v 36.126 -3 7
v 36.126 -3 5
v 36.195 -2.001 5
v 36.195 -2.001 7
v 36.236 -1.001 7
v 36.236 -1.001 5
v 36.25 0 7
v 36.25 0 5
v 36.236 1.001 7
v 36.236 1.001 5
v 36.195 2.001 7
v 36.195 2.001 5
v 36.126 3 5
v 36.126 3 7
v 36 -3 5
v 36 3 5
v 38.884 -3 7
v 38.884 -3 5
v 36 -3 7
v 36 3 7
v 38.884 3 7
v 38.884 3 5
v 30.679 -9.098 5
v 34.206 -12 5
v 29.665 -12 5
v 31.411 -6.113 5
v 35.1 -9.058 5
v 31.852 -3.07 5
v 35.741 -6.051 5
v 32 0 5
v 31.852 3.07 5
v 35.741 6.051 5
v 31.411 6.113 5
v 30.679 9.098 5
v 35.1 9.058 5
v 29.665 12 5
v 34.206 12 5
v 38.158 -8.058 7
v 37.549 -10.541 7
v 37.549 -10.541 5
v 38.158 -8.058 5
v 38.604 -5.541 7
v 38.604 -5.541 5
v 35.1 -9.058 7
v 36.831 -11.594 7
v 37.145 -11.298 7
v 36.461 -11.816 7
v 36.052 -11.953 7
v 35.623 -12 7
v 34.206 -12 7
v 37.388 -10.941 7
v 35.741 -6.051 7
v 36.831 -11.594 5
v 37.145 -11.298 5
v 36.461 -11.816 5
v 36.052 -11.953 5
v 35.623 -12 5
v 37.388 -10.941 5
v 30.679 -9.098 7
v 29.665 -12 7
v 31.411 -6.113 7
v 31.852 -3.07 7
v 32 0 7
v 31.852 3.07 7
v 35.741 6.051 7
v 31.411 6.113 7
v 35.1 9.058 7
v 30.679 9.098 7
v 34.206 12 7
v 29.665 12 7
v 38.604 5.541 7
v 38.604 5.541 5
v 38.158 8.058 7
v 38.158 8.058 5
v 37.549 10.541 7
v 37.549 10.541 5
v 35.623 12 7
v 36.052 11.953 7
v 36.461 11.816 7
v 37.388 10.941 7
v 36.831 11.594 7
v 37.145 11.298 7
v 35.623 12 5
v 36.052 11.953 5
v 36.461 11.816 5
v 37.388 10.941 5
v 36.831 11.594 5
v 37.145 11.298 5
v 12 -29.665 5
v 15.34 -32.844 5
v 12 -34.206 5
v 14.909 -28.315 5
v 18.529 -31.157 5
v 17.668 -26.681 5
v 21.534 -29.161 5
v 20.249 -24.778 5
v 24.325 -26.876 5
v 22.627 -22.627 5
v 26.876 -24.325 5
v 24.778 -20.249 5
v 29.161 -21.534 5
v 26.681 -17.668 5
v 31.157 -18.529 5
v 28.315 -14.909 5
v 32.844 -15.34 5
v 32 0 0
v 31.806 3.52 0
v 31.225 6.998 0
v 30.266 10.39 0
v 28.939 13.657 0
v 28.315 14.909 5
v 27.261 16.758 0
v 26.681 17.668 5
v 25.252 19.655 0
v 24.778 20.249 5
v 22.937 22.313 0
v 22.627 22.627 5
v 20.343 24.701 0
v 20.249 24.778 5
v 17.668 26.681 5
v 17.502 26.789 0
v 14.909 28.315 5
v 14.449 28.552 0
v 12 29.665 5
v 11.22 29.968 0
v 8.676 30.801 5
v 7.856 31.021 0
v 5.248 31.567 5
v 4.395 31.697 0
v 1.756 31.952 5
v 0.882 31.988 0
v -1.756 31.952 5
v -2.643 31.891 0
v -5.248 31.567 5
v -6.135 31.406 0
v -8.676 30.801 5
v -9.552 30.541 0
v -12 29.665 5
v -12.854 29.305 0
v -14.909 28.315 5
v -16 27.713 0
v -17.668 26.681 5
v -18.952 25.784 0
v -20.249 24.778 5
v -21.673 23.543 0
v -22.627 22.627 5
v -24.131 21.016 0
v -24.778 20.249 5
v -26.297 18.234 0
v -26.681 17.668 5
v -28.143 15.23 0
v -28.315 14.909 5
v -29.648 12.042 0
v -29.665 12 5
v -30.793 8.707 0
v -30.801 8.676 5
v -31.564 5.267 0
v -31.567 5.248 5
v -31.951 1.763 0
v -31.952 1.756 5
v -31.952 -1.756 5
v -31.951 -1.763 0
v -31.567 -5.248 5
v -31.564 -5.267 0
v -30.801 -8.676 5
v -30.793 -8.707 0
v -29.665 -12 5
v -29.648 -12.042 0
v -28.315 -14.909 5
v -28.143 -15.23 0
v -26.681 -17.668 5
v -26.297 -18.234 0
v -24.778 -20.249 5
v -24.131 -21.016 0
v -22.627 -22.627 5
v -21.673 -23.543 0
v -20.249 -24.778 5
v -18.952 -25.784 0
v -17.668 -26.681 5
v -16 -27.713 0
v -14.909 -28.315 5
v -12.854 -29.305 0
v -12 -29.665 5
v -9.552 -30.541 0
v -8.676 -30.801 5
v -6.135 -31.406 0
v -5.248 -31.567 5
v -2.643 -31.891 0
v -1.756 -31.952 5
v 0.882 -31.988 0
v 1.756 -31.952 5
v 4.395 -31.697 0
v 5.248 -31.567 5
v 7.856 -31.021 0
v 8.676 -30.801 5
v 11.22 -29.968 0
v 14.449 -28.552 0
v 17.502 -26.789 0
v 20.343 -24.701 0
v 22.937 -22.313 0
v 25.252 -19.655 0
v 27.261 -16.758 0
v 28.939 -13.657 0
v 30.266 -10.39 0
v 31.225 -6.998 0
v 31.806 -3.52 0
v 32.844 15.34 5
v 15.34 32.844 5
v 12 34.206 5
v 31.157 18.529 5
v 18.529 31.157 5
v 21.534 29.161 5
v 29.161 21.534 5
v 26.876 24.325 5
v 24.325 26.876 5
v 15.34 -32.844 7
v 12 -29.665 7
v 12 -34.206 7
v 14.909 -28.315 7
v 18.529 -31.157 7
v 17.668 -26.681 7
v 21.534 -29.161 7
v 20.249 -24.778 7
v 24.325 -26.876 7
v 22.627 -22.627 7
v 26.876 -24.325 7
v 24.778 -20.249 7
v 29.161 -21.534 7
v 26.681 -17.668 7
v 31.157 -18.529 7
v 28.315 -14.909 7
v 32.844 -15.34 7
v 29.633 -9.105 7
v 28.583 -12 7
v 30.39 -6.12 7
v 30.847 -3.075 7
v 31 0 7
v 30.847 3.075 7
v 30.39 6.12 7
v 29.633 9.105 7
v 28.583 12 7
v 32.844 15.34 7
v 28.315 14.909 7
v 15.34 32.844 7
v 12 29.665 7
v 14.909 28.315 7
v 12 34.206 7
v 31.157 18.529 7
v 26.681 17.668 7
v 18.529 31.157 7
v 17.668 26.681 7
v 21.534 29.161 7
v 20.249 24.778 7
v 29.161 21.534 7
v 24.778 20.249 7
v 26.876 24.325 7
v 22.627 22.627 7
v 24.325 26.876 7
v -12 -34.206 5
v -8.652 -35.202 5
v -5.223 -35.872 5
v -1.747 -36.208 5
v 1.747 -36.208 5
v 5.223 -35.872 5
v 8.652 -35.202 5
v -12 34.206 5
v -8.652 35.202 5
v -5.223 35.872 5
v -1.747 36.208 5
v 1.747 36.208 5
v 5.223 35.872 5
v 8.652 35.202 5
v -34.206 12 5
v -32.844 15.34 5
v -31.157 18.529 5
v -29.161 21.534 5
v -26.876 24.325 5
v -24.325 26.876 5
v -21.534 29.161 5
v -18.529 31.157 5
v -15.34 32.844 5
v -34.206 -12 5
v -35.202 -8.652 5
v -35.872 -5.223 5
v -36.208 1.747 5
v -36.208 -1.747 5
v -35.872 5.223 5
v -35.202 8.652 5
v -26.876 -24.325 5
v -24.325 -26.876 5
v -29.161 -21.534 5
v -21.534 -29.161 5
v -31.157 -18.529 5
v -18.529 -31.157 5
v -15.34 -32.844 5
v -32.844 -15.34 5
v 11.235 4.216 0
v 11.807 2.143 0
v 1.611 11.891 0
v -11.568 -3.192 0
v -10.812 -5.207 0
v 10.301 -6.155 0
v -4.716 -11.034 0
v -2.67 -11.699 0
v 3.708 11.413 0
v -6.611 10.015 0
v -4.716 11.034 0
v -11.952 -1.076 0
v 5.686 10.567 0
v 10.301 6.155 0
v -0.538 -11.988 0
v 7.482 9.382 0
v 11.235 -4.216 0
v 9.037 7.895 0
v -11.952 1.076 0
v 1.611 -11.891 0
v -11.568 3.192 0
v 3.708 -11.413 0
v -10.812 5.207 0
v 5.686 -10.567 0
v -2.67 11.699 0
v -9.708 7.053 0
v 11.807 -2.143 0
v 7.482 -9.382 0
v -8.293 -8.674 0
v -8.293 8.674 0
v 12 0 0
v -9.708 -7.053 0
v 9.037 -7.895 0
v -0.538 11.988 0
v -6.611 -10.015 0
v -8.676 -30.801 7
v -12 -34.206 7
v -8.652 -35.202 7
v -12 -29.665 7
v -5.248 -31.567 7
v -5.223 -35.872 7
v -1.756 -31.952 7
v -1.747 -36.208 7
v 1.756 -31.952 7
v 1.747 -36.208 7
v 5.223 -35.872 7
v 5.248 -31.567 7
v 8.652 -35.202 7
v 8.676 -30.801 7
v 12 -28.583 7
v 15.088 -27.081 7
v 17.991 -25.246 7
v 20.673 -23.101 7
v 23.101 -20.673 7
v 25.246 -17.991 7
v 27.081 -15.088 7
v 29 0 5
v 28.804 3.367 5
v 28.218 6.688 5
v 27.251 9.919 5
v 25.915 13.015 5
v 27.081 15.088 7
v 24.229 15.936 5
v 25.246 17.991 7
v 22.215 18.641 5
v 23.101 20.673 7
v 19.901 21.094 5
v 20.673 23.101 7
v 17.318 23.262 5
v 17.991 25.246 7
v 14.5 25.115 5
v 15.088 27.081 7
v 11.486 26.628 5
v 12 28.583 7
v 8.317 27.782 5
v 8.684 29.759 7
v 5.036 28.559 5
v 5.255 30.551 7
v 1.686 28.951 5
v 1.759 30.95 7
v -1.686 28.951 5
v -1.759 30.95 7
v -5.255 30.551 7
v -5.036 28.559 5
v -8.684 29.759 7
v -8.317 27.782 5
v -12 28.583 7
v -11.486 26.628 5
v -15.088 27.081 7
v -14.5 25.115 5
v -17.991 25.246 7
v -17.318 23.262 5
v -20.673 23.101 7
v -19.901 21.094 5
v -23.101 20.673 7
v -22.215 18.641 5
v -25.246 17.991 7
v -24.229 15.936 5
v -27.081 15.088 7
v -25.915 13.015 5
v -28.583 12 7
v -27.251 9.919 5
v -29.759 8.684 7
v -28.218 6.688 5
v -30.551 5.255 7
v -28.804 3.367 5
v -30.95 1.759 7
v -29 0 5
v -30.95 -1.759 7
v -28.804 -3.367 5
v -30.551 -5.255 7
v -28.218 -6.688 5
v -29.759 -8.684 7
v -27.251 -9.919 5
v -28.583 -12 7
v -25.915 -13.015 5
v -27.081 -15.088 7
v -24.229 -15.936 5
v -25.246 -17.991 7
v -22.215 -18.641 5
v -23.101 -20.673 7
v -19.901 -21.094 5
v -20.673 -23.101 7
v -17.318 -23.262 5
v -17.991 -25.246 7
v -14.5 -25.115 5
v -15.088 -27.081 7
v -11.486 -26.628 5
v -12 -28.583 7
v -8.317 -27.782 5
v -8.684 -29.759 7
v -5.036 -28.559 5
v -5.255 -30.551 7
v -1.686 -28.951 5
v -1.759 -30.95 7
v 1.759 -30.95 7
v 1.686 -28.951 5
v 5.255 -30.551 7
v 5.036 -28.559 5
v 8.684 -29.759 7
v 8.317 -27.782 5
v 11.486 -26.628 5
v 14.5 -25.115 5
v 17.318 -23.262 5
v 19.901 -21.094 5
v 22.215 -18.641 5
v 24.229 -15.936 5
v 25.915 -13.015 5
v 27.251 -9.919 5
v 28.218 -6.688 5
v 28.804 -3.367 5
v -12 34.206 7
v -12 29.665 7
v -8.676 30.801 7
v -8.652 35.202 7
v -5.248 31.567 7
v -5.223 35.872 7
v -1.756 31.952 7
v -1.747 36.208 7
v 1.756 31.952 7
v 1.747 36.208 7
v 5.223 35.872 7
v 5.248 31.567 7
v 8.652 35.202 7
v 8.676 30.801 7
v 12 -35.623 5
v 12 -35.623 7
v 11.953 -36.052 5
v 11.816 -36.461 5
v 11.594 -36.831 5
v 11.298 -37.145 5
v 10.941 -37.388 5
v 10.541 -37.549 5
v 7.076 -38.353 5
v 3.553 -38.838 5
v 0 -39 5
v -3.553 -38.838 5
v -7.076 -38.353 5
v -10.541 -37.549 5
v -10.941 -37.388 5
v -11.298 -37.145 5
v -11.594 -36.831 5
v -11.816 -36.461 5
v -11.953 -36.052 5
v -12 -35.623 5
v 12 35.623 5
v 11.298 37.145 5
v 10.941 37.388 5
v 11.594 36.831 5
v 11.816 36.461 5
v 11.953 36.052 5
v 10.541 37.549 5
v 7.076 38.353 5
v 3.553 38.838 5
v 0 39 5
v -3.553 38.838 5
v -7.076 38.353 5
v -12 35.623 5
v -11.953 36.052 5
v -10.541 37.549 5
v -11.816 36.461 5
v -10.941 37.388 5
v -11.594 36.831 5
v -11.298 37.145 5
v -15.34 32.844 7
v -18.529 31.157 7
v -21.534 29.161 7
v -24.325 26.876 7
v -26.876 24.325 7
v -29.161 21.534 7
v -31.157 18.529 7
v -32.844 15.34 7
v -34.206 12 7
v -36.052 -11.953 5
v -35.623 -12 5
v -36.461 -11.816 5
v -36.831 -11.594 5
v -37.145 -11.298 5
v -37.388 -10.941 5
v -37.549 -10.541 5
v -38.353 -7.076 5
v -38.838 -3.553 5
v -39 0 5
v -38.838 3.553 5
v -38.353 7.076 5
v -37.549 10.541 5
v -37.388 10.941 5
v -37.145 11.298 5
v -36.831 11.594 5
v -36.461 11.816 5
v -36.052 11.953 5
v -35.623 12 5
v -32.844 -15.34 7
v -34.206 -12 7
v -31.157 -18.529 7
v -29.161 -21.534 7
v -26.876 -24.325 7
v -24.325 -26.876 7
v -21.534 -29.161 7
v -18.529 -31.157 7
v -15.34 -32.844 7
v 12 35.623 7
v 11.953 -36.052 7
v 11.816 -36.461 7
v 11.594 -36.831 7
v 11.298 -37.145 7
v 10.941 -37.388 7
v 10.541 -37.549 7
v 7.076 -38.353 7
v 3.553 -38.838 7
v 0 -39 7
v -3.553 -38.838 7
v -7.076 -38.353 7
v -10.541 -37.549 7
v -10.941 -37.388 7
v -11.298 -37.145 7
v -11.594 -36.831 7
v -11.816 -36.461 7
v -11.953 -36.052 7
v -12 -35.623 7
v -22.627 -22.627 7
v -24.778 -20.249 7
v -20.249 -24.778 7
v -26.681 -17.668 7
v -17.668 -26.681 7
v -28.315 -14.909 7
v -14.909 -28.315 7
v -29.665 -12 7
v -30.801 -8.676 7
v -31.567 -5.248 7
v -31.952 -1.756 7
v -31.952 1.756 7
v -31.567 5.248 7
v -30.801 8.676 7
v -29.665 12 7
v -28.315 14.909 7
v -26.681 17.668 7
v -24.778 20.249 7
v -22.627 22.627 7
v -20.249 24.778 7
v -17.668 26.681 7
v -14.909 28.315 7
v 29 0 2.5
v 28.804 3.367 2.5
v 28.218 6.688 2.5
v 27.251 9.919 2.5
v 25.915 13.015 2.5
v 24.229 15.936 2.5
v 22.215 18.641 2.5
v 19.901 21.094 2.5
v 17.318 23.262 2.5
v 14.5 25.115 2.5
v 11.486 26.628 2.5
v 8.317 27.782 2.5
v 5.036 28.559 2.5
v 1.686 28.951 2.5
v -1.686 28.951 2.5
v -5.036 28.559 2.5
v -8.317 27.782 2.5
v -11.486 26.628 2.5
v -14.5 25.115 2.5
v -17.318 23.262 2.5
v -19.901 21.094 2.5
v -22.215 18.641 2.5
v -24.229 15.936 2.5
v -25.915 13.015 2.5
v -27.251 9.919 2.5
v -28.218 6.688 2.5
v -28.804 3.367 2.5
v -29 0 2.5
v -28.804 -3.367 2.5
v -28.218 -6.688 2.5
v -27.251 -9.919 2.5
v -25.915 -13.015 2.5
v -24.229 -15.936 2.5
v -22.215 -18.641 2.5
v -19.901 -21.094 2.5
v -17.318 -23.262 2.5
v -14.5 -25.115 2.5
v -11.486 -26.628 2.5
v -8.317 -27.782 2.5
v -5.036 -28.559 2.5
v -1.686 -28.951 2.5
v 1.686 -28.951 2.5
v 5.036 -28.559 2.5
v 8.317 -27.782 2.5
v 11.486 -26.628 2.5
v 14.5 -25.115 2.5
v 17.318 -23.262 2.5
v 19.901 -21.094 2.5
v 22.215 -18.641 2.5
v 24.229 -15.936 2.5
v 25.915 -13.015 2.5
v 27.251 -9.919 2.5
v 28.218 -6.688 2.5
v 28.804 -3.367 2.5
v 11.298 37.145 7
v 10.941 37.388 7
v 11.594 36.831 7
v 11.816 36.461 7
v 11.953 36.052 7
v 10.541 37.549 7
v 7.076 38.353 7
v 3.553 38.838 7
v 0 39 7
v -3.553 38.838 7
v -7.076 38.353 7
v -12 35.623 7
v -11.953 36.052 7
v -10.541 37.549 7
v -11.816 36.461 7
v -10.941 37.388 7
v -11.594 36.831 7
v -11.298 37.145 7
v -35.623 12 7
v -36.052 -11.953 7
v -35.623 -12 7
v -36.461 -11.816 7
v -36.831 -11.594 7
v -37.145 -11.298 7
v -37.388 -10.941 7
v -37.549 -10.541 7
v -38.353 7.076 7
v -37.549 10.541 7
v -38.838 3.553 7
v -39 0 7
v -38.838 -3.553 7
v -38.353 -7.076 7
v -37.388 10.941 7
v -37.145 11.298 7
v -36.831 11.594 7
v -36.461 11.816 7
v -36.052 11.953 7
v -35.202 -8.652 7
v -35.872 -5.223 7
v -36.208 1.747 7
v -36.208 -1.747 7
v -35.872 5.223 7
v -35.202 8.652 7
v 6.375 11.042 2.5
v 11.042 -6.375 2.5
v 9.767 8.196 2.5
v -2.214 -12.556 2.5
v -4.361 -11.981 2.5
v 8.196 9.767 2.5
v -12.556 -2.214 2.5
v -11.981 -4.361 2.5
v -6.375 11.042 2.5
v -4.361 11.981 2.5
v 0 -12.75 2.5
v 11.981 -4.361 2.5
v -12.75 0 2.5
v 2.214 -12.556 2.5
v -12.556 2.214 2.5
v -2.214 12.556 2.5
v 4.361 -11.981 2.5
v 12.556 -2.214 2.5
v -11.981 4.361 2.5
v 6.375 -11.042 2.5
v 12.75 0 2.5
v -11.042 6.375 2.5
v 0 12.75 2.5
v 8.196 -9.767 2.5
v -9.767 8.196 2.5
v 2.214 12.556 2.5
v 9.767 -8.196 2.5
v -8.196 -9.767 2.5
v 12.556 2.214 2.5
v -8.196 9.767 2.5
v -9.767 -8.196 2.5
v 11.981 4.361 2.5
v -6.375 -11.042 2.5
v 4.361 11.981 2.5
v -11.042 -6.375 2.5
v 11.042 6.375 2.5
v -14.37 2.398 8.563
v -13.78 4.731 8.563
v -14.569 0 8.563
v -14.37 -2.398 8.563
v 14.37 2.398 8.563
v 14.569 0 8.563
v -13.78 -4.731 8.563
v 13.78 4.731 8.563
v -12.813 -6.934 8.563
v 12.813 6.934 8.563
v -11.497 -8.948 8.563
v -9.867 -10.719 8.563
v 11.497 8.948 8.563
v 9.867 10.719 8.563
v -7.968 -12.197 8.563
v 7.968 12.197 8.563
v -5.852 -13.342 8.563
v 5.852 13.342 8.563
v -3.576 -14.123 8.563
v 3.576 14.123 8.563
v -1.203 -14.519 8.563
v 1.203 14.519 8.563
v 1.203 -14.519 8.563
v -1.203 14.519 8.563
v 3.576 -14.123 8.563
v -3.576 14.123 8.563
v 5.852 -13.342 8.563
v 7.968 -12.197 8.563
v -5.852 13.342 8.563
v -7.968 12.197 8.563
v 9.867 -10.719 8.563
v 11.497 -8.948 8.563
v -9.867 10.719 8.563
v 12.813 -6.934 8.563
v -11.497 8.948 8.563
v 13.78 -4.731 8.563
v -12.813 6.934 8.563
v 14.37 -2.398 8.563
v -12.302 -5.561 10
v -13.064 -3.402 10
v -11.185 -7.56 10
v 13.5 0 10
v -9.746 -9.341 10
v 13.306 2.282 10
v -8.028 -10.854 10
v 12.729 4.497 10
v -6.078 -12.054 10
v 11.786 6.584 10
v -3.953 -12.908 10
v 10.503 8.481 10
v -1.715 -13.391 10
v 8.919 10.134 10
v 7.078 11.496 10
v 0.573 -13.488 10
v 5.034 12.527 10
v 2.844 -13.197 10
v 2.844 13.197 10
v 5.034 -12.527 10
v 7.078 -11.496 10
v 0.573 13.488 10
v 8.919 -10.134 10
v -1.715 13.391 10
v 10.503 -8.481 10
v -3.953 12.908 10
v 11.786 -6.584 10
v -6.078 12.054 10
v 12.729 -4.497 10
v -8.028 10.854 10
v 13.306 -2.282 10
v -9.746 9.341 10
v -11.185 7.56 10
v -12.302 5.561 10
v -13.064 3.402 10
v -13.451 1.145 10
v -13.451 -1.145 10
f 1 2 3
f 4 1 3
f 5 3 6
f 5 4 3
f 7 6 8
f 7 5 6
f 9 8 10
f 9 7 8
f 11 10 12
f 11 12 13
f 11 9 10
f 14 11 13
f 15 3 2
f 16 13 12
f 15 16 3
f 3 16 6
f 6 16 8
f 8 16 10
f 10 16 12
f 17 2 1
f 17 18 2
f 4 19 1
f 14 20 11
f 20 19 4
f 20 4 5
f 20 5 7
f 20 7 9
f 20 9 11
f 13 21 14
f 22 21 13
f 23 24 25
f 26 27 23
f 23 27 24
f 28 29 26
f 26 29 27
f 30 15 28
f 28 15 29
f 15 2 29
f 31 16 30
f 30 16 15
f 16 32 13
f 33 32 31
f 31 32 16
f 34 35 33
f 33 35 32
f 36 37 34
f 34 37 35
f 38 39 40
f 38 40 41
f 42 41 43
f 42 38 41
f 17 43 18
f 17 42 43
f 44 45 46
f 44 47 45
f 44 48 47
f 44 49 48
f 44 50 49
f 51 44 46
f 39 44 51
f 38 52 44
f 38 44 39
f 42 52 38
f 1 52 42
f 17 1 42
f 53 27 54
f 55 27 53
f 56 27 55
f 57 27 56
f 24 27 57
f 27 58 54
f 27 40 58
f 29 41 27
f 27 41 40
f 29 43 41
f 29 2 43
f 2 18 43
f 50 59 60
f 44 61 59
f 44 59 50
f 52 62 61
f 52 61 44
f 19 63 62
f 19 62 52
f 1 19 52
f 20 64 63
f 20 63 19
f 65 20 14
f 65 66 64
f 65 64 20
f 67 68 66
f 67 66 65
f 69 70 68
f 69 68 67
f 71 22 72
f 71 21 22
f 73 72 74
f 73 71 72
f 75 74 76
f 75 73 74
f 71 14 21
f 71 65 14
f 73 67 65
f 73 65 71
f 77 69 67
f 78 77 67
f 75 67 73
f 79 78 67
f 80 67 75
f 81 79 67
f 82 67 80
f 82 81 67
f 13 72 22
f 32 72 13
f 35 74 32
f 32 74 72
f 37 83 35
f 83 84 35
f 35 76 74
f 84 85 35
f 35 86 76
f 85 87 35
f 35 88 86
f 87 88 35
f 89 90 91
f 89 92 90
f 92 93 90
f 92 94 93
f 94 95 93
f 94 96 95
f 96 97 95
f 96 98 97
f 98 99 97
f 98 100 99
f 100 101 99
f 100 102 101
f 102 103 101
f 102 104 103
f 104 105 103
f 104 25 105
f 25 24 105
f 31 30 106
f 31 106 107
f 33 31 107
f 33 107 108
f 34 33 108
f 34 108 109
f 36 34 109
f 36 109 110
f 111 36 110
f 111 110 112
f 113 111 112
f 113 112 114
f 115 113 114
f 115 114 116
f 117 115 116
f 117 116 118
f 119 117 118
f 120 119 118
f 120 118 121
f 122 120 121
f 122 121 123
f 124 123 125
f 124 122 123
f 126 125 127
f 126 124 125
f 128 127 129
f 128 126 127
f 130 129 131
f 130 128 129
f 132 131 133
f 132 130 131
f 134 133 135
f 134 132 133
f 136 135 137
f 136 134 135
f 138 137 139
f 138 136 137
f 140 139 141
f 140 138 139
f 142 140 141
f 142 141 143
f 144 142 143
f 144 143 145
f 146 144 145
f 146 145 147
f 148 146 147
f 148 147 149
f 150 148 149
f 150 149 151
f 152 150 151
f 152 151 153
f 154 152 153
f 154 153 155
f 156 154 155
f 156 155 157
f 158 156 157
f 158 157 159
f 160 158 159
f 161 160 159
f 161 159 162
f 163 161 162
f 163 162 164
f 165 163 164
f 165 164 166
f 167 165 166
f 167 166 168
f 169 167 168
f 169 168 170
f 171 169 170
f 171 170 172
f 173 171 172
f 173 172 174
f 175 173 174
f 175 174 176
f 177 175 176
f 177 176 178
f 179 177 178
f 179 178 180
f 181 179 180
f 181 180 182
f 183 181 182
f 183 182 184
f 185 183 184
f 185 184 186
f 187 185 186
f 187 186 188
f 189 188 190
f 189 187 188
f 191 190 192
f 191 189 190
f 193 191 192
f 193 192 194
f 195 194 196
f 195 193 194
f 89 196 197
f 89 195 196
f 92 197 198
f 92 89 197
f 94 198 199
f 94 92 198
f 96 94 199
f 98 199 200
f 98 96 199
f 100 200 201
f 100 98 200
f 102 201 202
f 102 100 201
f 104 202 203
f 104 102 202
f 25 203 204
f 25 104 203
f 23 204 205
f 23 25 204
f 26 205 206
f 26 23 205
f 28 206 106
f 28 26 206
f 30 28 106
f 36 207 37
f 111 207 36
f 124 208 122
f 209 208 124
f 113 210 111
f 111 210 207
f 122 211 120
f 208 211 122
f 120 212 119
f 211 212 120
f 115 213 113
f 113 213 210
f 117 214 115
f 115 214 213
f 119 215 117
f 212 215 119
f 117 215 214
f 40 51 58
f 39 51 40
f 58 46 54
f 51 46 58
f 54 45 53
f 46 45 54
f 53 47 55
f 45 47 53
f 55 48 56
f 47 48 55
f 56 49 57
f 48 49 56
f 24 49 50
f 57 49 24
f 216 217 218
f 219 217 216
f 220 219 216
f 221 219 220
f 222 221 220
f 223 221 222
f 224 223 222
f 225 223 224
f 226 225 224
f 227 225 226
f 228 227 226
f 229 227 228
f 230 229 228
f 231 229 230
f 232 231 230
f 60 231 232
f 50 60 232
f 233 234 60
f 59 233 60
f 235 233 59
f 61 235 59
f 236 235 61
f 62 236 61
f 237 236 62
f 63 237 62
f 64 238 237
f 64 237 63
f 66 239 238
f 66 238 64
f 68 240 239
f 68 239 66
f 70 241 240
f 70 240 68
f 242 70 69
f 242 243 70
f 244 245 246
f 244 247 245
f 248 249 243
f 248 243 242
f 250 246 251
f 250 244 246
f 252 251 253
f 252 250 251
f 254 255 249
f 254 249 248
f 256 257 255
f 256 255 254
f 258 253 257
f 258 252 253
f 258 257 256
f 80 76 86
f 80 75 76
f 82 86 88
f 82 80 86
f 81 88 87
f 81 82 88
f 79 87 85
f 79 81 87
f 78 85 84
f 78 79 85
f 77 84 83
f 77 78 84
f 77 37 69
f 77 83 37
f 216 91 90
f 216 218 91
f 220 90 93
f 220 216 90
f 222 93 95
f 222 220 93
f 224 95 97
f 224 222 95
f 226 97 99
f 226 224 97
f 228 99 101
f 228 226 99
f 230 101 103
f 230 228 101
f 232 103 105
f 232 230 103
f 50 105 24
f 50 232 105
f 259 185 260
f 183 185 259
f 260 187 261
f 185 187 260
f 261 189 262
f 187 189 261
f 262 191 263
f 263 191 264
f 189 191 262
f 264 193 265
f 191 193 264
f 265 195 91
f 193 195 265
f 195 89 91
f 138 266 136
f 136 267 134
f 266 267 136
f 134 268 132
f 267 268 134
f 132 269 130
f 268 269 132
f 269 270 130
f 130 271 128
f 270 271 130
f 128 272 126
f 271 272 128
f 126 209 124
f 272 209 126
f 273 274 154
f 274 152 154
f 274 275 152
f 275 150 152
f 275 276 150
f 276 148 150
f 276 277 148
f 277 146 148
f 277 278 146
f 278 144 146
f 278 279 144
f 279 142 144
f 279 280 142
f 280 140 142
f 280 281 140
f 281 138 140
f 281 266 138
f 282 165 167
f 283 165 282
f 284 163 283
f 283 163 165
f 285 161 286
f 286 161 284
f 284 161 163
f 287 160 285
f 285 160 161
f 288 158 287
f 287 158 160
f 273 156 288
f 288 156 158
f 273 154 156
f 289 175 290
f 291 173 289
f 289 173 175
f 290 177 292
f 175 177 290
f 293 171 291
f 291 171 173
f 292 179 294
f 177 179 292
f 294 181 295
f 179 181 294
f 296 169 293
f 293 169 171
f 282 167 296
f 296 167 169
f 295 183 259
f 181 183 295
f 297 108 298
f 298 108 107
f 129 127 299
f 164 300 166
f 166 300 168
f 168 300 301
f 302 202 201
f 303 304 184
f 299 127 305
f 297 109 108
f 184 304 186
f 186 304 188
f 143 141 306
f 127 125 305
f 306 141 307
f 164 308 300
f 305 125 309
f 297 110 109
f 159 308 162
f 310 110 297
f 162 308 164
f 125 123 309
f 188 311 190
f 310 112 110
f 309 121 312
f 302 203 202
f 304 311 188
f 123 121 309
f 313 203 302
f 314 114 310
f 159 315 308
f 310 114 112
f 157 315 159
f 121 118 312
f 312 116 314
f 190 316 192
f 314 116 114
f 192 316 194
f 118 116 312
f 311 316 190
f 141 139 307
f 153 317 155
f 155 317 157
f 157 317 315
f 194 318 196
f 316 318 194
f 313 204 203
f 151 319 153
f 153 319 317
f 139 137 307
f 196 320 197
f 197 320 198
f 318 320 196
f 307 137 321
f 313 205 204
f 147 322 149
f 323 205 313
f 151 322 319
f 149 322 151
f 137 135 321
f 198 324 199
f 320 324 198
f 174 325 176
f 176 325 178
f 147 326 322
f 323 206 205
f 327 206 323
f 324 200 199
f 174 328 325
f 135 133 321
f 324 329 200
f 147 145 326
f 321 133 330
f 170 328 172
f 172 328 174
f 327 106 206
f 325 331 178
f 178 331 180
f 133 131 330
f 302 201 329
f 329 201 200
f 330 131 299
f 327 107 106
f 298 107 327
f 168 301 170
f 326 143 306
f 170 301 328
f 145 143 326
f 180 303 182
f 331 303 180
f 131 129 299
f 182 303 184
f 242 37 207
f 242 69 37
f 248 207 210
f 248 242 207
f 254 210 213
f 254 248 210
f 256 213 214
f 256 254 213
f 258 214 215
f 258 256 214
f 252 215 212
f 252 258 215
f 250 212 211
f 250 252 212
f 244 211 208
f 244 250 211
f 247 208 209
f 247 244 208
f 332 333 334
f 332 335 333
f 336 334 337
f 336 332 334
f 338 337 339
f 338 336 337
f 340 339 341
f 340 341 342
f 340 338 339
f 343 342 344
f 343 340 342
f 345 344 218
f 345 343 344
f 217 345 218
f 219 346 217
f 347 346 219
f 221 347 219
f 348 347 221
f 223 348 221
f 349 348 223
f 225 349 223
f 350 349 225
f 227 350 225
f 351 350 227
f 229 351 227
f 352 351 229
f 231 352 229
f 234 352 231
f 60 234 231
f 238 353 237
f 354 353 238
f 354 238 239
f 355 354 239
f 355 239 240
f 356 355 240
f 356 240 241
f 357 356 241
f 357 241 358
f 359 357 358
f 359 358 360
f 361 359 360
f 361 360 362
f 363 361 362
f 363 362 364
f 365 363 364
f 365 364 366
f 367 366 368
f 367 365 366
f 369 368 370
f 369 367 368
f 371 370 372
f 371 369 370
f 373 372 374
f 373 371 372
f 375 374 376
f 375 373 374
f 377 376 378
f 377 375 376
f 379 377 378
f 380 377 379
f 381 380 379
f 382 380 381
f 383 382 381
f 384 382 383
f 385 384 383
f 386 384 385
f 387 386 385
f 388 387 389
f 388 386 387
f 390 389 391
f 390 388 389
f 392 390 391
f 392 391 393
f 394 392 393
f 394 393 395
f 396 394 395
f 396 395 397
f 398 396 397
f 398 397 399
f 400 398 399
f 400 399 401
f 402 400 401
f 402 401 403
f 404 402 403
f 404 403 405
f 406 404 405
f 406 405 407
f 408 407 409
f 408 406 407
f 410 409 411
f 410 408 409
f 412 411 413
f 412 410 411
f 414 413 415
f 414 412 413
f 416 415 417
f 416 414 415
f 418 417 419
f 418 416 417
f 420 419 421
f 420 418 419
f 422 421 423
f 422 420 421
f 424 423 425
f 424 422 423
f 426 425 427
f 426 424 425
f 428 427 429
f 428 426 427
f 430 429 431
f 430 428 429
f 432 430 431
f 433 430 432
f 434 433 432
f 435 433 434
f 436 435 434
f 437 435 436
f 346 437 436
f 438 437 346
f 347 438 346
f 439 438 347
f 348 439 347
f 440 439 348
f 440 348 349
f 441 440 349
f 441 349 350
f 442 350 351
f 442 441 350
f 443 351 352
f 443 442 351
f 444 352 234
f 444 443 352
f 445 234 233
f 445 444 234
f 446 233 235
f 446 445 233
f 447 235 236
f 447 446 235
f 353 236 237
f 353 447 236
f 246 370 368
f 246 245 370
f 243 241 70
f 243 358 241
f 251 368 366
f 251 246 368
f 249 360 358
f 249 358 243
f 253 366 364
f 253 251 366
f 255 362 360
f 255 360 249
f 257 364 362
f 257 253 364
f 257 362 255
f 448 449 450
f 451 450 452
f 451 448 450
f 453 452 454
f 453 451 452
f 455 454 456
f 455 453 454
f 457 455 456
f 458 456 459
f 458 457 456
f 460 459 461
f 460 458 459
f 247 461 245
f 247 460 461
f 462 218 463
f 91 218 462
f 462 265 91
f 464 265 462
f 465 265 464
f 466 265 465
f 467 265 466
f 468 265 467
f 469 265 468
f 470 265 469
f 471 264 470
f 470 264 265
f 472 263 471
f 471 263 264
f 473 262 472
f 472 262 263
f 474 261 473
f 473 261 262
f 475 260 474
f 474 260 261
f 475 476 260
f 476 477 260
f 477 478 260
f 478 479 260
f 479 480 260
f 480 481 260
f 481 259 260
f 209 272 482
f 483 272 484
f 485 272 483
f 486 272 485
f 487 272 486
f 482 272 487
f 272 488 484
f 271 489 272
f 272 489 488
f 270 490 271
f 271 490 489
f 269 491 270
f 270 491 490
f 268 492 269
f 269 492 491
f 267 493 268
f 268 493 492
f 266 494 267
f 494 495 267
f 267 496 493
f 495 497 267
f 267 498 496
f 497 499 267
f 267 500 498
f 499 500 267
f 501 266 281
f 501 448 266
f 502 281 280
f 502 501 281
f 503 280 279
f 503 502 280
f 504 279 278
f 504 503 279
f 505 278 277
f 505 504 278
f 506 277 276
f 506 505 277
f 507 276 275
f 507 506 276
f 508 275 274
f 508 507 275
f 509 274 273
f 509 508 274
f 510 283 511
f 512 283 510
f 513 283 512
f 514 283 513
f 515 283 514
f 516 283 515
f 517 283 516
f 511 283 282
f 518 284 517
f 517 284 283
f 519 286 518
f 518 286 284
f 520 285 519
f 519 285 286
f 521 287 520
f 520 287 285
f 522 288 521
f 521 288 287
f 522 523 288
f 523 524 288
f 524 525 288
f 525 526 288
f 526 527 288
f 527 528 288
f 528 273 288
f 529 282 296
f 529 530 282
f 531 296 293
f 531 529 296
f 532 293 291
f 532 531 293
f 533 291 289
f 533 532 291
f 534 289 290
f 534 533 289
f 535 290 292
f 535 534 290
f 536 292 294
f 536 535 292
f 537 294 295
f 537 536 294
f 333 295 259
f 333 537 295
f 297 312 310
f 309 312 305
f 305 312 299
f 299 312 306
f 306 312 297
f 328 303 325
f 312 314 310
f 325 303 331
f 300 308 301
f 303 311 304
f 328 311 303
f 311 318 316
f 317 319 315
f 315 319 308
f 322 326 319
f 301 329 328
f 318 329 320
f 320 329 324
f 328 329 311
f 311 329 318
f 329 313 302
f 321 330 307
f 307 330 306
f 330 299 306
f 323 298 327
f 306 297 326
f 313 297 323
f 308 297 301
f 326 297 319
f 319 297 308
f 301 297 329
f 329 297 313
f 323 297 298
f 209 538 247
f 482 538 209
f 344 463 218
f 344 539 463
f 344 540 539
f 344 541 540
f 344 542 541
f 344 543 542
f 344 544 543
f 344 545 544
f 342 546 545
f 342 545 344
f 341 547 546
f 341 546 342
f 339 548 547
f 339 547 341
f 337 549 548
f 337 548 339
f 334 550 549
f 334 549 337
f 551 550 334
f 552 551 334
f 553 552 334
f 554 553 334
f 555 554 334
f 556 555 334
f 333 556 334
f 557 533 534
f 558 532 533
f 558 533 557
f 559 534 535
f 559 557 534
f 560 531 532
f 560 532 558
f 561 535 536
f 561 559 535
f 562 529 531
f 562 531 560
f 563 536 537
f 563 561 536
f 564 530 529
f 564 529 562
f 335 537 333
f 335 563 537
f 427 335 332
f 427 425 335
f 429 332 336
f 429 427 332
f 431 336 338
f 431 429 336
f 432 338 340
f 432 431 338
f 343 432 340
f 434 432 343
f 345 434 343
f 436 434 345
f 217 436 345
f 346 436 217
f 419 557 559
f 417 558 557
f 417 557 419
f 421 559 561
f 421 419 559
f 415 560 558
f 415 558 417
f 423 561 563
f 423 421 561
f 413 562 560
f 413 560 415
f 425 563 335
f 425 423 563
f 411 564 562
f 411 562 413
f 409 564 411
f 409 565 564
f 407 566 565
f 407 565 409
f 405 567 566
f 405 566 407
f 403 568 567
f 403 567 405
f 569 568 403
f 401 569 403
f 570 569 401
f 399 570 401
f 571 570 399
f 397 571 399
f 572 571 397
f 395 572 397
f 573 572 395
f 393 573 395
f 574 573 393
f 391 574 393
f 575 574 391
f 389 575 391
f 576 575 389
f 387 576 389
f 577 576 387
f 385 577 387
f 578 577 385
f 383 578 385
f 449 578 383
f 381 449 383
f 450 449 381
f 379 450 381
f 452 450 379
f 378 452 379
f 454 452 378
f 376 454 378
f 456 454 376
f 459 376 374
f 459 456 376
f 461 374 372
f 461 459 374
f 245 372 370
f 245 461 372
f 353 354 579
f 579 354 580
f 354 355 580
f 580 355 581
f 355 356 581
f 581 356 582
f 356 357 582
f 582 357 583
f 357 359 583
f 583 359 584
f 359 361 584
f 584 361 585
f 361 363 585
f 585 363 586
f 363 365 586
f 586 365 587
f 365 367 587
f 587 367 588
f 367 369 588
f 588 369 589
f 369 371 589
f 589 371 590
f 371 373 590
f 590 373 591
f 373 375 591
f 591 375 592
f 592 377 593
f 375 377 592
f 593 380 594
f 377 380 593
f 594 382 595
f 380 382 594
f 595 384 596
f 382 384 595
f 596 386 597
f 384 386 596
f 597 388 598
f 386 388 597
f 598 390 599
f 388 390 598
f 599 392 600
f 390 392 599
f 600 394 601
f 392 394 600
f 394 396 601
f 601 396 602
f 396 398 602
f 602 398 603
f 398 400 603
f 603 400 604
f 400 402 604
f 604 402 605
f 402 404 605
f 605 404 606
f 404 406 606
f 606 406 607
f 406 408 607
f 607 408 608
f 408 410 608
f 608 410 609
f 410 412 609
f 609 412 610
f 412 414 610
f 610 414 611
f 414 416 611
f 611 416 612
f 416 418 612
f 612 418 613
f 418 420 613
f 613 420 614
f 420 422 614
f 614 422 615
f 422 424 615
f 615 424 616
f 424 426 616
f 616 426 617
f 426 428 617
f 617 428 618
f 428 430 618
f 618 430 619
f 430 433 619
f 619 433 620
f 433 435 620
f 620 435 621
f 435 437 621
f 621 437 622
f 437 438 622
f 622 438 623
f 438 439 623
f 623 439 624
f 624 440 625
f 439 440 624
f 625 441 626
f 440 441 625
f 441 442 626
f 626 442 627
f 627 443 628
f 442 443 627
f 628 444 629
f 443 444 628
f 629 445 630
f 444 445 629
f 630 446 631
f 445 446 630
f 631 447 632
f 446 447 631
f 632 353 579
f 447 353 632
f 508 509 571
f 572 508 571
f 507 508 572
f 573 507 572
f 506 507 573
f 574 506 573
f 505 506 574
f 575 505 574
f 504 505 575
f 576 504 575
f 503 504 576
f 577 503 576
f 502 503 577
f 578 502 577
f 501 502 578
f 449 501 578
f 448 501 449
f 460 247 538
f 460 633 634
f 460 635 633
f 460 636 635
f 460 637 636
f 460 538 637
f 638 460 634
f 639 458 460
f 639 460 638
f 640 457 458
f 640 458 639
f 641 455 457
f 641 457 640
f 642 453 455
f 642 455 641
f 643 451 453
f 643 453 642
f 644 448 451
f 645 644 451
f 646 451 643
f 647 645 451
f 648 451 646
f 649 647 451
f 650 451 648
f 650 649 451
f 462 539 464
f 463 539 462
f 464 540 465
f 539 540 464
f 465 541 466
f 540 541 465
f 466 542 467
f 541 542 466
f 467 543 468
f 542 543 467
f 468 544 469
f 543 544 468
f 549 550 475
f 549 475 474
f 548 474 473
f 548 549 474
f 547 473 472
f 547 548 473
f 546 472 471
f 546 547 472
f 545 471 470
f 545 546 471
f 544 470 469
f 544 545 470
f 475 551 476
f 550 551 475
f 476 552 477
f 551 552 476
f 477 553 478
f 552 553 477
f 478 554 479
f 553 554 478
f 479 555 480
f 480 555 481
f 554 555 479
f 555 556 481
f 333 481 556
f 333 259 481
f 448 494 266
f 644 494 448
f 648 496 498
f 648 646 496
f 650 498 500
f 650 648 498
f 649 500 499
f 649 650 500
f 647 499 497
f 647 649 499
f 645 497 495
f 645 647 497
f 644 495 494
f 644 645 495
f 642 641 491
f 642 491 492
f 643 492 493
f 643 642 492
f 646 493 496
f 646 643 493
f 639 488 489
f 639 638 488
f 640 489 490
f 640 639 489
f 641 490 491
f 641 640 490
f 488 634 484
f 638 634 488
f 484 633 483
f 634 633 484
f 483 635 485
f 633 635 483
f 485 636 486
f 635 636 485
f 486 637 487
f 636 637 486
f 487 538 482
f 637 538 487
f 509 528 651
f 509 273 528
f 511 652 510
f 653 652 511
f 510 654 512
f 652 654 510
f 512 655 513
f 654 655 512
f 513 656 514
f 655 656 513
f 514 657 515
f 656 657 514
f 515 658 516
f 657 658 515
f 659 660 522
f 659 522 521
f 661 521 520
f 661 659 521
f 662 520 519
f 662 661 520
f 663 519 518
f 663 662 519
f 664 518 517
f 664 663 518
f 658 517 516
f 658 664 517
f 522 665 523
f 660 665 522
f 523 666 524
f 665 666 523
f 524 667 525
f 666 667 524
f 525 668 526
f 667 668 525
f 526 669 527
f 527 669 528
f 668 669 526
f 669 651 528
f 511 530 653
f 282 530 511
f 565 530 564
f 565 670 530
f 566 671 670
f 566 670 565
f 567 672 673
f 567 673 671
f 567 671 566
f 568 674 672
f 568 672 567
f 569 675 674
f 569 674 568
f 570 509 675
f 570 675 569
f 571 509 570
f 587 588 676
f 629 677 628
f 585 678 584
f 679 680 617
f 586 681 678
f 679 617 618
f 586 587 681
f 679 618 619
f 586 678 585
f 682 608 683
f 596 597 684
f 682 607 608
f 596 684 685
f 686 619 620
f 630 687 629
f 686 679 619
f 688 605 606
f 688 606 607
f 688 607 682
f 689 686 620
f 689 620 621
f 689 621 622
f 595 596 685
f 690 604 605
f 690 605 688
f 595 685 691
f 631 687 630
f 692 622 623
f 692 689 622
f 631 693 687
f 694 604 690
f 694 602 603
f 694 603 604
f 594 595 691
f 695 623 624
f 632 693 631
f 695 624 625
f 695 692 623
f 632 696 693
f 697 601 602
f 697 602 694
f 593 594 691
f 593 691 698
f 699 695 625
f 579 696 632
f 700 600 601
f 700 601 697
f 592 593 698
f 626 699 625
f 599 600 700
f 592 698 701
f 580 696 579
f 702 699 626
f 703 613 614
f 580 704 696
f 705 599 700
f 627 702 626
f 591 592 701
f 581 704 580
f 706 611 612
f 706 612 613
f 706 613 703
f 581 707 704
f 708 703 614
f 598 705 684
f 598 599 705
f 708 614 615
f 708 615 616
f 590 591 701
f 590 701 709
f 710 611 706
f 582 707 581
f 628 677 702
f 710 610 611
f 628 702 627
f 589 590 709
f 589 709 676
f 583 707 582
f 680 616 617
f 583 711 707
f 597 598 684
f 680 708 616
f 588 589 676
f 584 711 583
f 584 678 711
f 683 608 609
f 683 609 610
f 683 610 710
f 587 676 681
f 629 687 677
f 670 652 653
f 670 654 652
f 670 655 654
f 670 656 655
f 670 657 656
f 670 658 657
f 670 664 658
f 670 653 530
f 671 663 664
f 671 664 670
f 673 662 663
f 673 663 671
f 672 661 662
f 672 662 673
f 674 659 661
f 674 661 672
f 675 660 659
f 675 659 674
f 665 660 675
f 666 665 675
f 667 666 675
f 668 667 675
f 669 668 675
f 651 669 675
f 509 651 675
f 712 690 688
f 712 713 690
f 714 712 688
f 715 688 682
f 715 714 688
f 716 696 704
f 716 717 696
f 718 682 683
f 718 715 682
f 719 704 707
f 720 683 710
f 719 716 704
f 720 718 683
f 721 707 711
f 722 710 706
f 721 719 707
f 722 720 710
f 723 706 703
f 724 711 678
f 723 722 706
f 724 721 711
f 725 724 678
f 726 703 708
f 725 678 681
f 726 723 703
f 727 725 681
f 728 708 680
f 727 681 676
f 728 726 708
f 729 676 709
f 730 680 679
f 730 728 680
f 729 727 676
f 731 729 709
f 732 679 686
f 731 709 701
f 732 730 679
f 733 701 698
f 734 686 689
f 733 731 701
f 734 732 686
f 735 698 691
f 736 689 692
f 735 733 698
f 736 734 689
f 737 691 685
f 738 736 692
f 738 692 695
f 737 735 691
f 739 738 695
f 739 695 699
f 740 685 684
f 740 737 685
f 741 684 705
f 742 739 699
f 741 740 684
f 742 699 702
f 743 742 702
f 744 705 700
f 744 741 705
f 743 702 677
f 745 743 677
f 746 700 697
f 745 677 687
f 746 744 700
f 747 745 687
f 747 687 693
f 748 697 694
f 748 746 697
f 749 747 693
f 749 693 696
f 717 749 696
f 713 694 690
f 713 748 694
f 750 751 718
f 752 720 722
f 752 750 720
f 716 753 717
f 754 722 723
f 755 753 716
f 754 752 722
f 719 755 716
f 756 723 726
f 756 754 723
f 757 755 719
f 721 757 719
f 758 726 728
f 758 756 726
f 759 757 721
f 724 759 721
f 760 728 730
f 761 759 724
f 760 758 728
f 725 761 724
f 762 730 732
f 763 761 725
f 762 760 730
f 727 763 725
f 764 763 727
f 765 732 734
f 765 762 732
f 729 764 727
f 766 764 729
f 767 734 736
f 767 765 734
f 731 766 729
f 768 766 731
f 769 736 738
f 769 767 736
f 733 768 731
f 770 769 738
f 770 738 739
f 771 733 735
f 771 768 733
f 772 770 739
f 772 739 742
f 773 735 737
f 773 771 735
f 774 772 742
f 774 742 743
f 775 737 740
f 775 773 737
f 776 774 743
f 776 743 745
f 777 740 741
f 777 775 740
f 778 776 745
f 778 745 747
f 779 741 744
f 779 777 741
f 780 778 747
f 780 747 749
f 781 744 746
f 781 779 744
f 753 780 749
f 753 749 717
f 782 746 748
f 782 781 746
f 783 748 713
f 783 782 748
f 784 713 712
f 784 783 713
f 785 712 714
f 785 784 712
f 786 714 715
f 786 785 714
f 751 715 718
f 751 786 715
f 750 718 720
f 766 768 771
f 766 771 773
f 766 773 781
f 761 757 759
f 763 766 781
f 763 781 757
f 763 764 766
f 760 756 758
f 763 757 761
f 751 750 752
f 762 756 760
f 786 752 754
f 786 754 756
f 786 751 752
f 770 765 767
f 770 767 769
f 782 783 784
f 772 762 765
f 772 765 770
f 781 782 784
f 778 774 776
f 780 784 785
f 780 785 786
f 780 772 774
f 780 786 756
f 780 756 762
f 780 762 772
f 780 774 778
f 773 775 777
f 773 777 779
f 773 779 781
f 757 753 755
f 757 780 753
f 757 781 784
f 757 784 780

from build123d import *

# Parameters (mm, degrees)
CHAMFER001_SIZE           = 1.5
CYLINDER006_R             = 31
CYLINDER006_DEPTH         = 7
CHAMFER_SIZE              = 3
CYLINDER005_R             = 29
CYLINDER005_DEPTH         = 7
BOX004_W                  = 10
BOX004_H                  = 6
BOX004_DEPTH              = 10
BOX001_W                  = 100
BOX001_H                  = 40
BOX001_DEPTH              = 10
BOX_W                     = 100
BOX_H                     = 40
BOX_DEPTH                 = 10
CYLINDER003_R             = 39
CYLINDER003_DEPTH         = 2
FILLET_R                  = 2
FILLET001_R               = 2
BOX002_W                  = 100
BOX002_H                  = 40
BOX002_DEPTH              = 10
BOX003_W                  = 100
BOX003_H                  = 40
BOX003_DEPTH              = 10
CYLINDER004_R             = 39
CYLINDER004_DEPTH         = 2
FILLET003_R               = 2
FILLET002_R               = 2
FILLET002_PLACEMENT_ANGLE = 90
CYLINDER_R                = 32
CYLINDER_DEPTH            = 7
CYLINDER001_R             = 36.25
CYLINDER001_DEPTH         = 2


with BuildPart() as handle:
    # Cone → Cone (revolve)
    with BuildSketch(Plane.XZ):
        Polygon((0, 0), (12, 0), (15, 10), (0, 10), align=None)
    revolve(axis=Axis((0, 0, 0), (0, 0, 1)))

    # Chamfer001
    chamfer001_edges = [handle.edges().sort_by_distance(p)[0] for p in [
        (-15, 0, 10),
    ]]
    chamfer(chamfer001_edges, length=CHAMFER001_SIZE)


with BuildPart() as chamfer_body:
    # Cylinder006 → Cylinder006 (new body)
    with BuildSketch(Plane.XY.offset(4)):
        Circle(CYLINDER006_R)
    extrude(amount=CYLINDER006_DEPTH)

    # Chamfer
    chamfer_edges = [chamfer_body.edges().sort_by_distance(p)[0] for p in [
        (-31, 0, 4),
    ]]
    chamfer(chamfer_edges, length=CHAMFER_SIZE)


with BuildPart() as cylinder005:
    # Cylinder005 → Cylinder005 (new body)
    with BuildSketch(Plane.XY.offset(2.5)):
        Circle(CYLINDER005_R)
    extrude(amount=CYLINDER005_DEPTH)


with BuildPart() as cube004:
    # Box004 → Box004 (new body)
    with BuildSketch(Plane(origin=(36, -3, 0), x_dir=(1, 0, 0), z_dir=(0, 0, 1))):
        with Locations((5, 3)):
            Rectangle(BOX004_W, BOX004_H)
    extrude(amount=BOX004_DEPTH)


with BuildPart() as cube001:
    # Box001 → Box001 (new body)
    with BuildSketch(Plane(origin=(-50, -52, 0), x_dir=(1, 0, 0), z_dir=(0, 0, 1))):
        with Locations((50, 20)):
            Rectangle(BOX001_W, BOX001_H)
    extrude(amount=BOX001_DEPTH)


with BuildPart() as fusion:
    # Box → Box (new body)
    with BuildSketch(Plane(origin=(-50, 12, 0), x_dir=(1, 0, 0), z_dir=(0, 0, 1))):
        with Locations((50, 20)):
            Rectangle(BOX_W, BOX_H)
    extrude(amount=BOX_DEPTH)

    # Fusion: union Cube001
    add(cube001.part)


with BuildPart() as cut002:
    # Cylinder003 → Cylinder003 (new body)
    with BuildSketch(Plane.XY.offset(5)):
        Circle(CYLINDER003_R)
    extrude(amount=CYLINDER003_DEPTH)

    # Cut: cut Fusion
    add(fusion.part, mode=Mode.SUBTRACT)

    # Fillet
    fillet_edges = [cut002.edges().sort_by_distance(p)[0] for p in [
        (37.107951, -12, 6),
        (37.107951, 12, 6),
    ]]
    fillet(fillet_edges, radius=FILLET_R)

    # Fillet001
    fillet001_edges = [cut002.edges().sort_by_distance(p)[0] for p in [
        (-37.107951, -12, 6),
        (-37.107951, 12, 6),
    ]]
    fillet(fillet001_edges, radius=FILLET001_R)

    # Cut002: cut Cube004
    add(cube004.part, mode=Mode.SUBTRACT)


with BuildPart() as cube002:
    # Box002 → Box002 (new body)
    with BuildSketch(Plane(origin=(-50, -52, 0), x_dir=(1, 0, 0), z_dir=(0, 0, 1))):
        with Locations((50, 20)):
            Rectangle(BOX002_W, BOX002_H)
    extrude(amount=BOX002_DEPTH)


with BuildPart() as fusion001:
    # Box003 → Box003 (new body)
    with BuildSketch(Plane(origin=(-50, 12, 0), x_dir=(1, 0, 0), z_dir=(0, 0, 1))):
        with Locations((50, 20)):
            Rectangle(BOX003_W, BOX003_H)
    extrude(amount=BOX003_DEPTH)

    # Fusion001: union Cube002
    add(cube002.part)


with BuildPart() as bayonet:
    # Cylinder004 → Cylinder004 (new body)
    with BuildSketch(Plane.XY.offset(5)):
        Circle(CYLINDER004_R)
    extrude(amount=CYLINDER004_DEPTH)

    # Cut001: cut Fusion001
    add(fusion001.part, mode=Mode.SUBTRACT)

    # Fillet003
    fillet003_edges = [bayonet.edges().sort_by_distance(p)[0] for p in [
        (37.107951, -12, 6),
        (37.107951, 12, 6),
    ]]
    fillet(fillet003_edges, radius=FILLET003_R)

    # Fillet002
    fillet002_edges = [bayonet.edges().sort_by_distance(p)[0] for p in [
        (-37.107951, -12, 6),
        (-37.107951, 12, 6),
    ]]
    fillet(fillet002_edges, radius=FILLET002_R)


with BuildPart() as bayonet_1:
    # Fillet002 placement: moved
    add(bayonet.part.rotate(Axis((0, 0, 0), (0, 0, 1)), FILLET002_PLACEMENT_ANGLE))

    # Fusion002: union Cut002
    add(cut002.part)


with BuildPart() as fusion003:
    # Cylinder → Cylinder (new body)
    with BuildSketch(Plane.XY):
        Circle(CYLINDER_R)
    extrude(amount=CYLINDER_DEPTH)

    # Fusion003: union Bayonet
    add(bayonet_1.part)


with BuildPart() as oct19_body_port_cover:
    # Cylinder001 → Cylinder001 (new body)
    with BuildSketch(Plane.XY.offset(5)):
        Circle(CYLINDER001_R)
    extrude(amount=CYLINDER001_DEPTH)

    # Fusion004: union Fusion003
    add(fusion003.part)

    # Cut003: cut Cylinder005
    add(cylinder005.part, mode=Mode.SUBTRACT)

    # Cut004: cut Chamfer body
    add(chamfer_body.part, mode=Mode.SUBTRACT)

    # Fusion005: union Handle
    add(handle.part)


solid = oct19_body_port_cover.part
